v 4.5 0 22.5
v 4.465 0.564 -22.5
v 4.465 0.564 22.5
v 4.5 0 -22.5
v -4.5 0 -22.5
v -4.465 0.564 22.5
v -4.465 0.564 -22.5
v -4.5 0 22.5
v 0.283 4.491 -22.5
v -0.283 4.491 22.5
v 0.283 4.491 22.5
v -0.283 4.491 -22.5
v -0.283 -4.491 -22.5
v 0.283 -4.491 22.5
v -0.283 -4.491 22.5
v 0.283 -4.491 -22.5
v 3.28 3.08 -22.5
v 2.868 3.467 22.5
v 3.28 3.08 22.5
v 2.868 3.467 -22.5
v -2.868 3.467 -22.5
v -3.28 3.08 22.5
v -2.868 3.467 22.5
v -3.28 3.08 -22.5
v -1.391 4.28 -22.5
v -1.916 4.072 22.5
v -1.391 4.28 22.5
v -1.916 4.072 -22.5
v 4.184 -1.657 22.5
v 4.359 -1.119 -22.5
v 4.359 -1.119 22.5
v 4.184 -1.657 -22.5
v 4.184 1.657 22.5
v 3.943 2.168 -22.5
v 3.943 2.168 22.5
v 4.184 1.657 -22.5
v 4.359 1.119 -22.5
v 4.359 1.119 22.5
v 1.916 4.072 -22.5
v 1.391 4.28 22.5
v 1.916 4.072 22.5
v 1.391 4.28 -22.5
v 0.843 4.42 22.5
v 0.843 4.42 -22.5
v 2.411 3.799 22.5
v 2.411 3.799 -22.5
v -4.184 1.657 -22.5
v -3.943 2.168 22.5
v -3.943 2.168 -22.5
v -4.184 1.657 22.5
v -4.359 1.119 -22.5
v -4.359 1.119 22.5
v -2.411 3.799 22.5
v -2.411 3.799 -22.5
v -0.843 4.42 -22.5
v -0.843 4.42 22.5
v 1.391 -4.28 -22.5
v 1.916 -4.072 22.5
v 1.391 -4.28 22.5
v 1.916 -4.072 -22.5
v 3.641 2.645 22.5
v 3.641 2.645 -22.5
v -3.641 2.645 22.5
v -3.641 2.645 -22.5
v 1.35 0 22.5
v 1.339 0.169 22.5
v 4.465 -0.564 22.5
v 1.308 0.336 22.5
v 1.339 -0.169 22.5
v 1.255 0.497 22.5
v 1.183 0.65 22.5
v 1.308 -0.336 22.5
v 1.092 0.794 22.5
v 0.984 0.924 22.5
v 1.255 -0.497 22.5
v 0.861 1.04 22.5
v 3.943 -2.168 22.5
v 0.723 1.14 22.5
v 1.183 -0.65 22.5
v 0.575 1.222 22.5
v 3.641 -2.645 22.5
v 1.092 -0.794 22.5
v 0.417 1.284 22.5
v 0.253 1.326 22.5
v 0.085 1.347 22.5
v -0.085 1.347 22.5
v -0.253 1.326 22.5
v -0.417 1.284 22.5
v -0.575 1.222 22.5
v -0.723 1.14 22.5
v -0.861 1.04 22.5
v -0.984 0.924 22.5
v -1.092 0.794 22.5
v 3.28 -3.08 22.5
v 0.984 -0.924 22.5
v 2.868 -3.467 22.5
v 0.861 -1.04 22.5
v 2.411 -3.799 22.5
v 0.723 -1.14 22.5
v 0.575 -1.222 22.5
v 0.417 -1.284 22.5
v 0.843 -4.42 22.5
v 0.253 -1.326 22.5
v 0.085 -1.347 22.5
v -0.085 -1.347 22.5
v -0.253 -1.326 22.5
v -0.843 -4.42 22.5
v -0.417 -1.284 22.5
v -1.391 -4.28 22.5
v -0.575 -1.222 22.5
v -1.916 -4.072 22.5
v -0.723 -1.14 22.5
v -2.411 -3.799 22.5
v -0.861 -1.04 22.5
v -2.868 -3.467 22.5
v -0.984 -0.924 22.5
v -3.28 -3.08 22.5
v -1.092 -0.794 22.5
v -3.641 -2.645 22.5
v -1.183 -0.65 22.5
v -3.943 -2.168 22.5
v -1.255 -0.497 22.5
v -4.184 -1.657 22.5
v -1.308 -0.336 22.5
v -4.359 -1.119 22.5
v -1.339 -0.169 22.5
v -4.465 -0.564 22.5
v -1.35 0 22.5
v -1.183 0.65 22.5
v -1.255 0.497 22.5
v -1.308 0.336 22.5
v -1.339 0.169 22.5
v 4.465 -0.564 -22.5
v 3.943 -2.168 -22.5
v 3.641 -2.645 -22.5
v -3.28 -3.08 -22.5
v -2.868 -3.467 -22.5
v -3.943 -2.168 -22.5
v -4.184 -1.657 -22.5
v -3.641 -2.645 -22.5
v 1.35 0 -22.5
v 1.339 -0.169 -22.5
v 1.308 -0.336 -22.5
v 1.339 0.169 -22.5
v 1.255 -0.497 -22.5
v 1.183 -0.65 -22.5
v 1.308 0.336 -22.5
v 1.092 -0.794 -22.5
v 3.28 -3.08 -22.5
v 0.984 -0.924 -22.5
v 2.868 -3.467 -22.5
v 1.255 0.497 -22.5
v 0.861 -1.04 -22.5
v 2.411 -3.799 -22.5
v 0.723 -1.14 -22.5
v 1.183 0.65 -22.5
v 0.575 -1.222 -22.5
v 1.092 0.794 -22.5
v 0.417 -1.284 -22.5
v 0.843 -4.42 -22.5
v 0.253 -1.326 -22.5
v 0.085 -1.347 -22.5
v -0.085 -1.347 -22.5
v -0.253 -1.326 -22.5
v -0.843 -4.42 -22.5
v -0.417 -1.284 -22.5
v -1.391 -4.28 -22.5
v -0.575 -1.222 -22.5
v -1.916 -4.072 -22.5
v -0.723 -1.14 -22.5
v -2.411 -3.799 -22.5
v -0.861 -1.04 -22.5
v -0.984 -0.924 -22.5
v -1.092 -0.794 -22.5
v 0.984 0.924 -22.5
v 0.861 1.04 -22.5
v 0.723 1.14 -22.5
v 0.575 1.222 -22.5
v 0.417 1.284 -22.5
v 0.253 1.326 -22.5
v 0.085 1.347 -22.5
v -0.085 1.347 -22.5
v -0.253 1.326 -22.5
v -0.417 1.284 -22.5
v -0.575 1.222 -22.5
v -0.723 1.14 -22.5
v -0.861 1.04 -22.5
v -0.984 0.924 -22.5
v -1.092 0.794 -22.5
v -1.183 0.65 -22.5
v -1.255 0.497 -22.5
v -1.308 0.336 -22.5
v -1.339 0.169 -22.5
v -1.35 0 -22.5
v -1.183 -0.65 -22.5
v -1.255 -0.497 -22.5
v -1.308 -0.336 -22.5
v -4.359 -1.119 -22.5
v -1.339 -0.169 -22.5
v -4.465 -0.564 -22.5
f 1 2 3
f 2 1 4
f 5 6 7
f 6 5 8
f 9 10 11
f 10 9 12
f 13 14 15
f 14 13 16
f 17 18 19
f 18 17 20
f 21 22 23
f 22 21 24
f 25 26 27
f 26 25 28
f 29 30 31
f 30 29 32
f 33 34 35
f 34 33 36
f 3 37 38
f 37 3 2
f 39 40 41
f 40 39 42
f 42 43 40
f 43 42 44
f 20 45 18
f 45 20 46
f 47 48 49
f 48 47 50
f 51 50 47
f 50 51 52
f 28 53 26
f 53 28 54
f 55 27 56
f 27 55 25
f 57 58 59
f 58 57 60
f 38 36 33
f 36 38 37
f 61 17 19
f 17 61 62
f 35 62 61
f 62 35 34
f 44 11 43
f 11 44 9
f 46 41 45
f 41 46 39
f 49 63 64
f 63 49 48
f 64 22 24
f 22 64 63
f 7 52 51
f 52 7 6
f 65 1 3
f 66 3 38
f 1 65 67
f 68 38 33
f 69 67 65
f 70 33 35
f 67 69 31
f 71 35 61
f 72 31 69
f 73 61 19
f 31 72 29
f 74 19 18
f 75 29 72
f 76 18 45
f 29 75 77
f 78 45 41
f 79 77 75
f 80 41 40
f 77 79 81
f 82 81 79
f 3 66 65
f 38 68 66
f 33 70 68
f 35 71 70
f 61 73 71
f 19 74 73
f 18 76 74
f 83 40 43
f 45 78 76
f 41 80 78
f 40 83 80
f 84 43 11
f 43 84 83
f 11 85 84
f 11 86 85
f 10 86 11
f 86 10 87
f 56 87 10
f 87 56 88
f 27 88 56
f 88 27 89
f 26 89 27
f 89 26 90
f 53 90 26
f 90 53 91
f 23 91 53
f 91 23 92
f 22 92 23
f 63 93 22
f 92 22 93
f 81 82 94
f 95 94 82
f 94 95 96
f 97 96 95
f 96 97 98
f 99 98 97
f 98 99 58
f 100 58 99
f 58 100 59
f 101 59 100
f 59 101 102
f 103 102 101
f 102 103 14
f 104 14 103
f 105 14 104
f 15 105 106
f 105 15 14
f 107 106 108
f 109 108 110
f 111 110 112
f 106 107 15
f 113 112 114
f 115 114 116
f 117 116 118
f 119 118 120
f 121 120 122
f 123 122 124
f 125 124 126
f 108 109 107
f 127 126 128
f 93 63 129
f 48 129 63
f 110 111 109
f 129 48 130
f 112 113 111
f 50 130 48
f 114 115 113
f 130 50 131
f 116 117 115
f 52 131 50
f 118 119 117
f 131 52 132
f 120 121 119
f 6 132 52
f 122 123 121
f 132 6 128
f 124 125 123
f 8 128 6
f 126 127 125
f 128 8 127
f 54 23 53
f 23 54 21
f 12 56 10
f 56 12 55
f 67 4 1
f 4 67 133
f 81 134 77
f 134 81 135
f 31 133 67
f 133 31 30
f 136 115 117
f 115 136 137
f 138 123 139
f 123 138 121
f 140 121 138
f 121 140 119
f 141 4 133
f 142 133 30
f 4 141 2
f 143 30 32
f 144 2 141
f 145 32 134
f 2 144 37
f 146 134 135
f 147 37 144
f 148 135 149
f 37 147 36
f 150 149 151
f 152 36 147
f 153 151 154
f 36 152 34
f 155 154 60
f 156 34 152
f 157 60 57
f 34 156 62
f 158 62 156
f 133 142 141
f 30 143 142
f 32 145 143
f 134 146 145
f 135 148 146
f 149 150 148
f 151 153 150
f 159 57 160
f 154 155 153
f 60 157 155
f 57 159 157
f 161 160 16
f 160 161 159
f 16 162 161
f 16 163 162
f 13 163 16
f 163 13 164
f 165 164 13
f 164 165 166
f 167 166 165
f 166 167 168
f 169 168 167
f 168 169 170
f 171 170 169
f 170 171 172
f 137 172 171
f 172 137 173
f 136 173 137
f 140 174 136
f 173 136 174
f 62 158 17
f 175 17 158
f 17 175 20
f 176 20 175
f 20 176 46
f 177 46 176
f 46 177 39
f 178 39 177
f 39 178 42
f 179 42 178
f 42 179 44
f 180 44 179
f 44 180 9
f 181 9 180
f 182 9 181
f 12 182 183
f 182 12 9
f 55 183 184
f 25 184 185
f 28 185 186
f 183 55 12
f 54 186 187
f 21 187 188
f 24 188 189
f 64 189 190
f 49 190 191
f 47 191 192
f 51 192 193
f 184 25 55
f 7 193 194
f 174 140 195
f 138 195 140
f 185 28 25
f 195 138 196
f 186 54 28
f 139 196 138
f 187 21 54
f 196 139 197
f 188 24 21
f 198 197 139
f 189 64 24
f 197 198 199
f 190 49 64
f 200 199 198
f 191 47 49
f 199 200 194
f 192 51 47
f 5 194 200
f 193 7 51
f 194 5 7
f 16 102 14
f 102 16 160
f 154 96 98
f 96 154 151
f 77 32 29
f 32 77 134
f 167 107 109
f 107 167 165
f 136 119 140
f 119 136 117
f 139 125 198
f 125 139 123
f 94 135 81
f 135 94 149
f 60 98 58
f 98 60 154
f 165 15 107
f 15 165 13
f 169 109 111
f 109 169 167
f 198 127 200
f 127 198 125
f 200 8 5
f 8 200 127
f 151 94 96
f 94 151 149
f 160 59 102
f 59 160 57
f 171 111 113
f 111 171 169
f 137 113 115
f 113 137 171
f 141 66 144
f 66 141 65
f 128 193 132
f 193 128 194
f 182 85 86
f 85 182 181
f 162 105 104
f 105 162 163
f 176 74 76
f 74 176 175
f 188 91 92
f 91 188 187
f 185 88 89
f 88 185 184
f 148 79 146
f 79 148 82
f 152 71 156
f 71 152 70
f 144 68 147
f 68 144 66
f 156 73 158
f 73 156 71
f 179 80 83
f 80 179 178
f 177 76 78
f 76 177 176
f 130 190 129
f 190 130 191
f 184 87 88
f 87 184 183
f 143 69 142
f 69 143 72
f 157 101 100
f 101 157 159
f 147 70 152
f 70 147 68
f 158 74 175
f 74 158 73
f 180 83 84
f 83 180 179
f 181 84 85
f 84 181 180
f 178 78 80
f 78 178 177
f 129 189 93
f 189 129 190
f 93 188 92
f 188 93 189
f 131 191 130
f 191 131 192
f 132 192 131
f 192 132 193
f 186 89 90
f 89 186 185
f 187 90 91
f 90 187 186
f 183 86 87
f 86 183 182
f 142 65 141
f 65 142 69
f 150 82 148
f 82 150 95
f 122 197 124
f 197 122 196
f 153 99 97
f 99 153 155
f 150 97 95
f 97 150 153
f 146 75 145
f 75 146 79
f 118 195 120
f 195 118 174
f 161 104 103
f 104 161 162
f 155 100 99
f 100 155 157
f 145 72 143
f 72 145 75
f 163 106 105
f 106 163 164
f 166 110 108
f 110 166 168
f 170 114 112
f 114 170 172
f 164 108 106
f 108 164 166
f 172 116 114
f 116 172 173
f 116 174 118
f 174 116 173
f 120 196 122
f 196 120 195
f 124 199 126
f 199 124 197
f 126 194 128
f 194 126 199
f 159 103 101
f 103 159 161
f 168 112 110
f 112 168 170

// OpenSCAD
$fn = 50;


difference() {
	union() {
		translate(v = [0, 0, -22.5000000000]) {
			cylinder(h = 45, r = 4.5000000000);
		}
	}
	union() {
		translate(v = [0, 0, -100.0000000000]) {
			cylinder(h = 200, r = 1.3500000000);
		}
	}
}
